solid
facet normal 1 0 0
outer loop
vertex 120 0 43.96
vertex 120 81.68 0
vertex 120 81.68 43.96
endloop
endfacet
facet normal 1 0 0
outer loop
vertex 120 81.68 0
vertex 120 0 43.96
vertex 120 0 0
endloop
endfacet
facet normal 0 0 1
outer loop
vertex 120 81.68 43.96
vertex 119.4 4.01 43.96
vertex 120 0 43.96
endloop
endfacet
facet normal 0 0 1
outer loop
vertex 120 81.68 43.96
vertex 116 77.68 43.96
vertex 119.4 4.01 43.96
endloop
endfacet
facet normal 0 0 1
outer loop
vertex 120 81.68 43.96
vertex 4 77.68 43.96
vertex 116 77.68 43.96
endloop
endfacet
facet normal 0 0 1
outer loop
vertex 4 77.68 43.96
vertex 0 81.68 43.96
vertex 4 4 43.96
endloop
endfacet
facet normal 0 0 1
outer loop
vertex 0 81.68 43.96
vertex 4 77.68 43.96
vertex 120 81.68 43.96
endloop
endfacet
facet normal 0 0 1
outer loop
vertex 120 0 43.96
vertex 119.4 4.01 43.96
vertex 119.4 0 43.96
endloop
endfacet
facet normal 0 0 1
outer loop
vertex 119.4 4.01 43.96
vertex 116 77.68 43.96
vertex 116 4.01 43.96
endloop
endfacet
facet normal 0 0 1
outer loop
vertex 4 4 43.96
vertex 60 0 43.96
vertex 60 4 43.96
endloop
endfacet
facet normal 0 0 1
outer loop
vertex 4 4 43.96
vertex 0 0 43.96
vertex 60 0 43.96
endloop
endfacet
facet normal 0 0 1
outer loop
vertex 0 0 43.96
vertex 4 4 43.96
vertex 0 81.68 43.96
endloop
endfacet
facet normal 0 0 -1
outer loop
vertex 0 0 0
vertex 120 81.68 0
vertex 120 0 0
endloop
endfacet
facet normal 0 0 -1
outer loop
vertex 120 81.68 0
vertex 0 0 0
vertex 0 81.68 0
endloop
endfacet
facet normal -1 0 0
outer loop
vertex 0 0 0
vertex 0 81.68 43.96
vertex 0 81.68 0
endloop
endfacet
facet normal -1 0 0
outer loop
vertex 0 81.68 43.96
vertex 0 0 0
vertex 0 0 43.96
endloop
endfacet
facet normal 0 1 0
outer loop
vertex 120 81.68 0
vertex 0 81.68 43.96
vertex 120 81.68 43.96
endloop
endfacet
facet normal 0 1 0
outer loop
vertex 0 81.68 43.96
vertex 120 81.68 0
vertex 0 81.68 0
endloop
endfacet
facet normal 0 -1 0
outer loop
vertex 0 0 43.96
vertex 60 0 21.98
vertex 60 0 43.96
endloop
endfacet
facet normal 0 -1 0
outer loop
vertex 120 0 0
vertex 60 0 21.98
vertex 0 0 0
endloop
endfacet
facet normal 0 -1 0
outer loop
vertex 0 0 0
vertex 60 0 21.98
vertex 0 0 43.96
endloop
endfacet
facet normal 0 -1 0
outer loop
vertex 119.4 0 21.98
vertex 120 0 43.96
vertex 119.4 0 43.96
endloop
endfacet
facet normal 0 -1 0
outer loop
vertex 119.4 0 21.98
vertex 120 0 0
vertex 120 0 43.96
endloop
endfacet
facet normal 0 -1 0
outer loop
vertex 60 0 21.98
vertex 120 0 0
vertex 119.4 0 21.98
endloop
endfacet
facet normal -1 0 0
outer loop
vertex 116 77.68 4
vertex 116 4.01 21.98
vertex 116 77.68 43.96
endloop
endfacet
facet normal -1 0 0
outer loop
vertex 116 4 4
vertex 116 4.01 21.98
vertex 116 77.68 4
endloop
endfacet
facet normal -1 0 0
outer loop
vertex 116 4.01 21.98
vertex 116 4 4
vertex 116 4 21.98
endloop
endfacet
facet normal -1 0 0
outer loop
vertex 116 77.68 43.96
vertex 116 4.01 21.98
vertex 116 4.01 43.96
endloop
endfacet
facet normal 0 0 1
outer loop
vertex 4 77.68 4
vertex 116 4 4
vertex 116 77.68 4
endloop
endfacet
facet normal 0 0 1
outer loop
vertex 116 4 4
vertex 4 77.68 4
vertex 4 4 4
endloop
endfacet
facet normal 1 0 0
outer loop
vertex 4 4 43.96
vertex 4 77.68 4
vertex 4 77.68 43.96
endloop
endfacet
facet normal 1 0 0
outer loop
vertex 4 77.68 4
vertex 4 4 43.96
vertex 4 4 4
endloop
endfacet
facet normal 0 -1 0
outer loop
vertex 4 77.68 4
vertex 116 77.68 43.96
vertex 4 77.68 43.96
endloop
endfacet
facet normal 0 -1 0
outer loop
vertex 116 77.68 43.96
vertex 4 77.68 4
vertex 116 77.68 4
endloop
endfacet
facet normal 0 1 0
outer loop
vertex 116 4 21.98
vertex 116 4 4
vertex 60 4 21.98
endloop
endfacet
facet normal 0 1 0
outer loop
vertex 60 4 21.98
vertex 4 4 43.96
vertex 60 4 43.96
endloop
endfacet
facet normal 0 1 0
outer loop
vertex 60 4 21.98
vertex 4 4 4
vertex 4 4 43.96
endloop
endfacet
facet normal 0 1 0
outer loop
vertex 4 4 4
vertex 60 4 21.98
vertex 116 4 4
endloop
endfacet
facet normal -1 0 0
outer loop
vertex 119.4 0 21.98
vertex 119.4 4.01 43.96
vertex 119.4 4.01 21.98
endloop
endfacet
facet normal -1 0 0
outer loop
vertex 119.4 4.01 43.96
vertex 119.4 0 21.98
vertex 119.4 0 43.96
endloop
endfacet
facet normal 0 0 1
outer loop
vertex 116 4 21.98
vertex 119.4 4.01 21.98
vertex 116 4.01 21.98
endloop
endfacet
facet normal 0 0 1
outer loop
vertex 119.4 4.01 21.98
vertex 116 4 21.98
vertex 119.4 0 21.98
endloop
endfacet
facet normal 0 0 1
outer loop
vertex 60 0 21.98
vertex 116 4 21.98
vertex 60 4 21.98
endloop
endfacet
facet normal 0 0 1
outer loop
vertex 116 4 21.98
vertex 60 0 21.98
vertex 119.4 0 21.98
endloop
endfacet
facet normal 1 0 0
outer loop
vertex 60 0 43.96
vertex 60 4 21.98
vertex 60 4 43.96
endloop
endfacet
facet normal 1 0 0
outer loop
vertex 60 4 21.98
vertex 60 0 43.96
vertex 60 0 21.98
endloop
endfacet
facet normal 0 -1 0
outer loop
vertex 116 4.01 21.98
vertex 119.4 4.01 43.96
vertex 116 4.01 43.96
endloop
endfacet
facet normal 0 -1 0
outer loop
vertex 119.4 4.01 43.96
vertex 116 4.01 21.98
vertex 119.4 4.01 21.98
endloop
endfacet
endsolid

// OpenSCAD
/* doodle-meta {"version":1,"parameters":{"width":{"label":"Overall width","description":"Changes the body width","unit":"mm","feature":"body_width"},"depth":{"label":"Overall depth","description":"Changes the body depth","unit":"mm","feature":"body_depth"},"height":{"label":"Overall height","description":"Changes the body height","unit":"mm","feature":"body_height"},"wall_thickness":{"label":"Wall thickness","description":"Changes the thickness of the enclosure walls and base","unit":"mm","feature":"wall_thickness"},"window_width":{"label":"Window width","description":"Changes the width of the front window cutout","unit":"mm","feature":"window"},"window_height":{"label":"Window height","description":"Changes the height of the front window cutout","unit":"mm","feature":"window"},"window_center_z":{"label":"Window center height","description":"Changes the vertical position of the window center","unit":"mm","feature":"window"}},"features":{"body_width":{"kind":"dimension","axis":"x","label":"Overall width"},"body_depth":{"kind":"dimension","axis":"y","label":"Overall depth"},"body_height":{"kind":"dimension","axis":"z","label":"Overall height"},"wall_thickness":{"kind":"region","label":"Wall thickness","min":[0,0,0],"max":[{"parameter":"wall_thickness","scale":1,"offset":0},{"parameter":"wall_thickness","scale":1,"offset":0},{"parameter":"height","scale":1,"offset":0}]},"window":{"kind":"region","label":"Front window","min":[{"parameter":"width","scale":0.5,"offset":-0.5},{"parameter":"window_width","scale":1,"offset":0},{"parameter":"window_center_z","scale":1,"offset":-0.5}],"max":[{"parameter":"width","scale":0.5,"offset":0.5},{"parameter":"window_width","scale":1,"offset":0},{"parameter":"window_center_z","scale":1,"offset":0.5}]}}} */

// Top-level parameters (user-editable)
width = 120.0;
depth = 81.68;
height = 43.96;
wall_thickness = 4.0;
window_width = 59.4;
window_height = 25.7;
window_center_z = 21.98;

// Derived constants (not user-editable)
eps = 0.01;

// Module: The complete enclosure body
module enclosure_body() {
    difference() {
        // 1. Positive Body: Solid block
        cube([width, depth, height]);
        
        // 2. Shell Cavity: Remove interior to create walls and base
        // Cavity starts at wall_thickness from all sides except top (open top)
        translate([wall_thickness, wall_thickness, wall_thickness]) {
            cube([width - 2*wall_thickness, depth - 2*wall_thickness, height - wall_thickness + eps]);
        }
        
        // 3. Front Window Cutout
        // The window is on the front face (Y=0).
        // Cutter axis must be along Y to pierce the front wall.
        // Center of window in X is width/2.
        // Center of window in Z is window_center_z.
        // Cutter spans from Y = -eps to Y = wall_thickness + eps to fully traverse the front wall.
        translate([width/2, -eps, window_center_z]) {
            // Rectangular cutter centered at origin of this local frame
            // X spans -window_width/2 to +window_width/2
            // Y spans 0 to wall_thickness + 2*eps (to ensure through cut)
            // Z spans -window_height/2 to +window_height/2
            cube([window_width, wall_thickness + 2*eps, window_height], center=[true, false, true]);
        }
    }
}

// Instantiate the design
enclosure_body();
